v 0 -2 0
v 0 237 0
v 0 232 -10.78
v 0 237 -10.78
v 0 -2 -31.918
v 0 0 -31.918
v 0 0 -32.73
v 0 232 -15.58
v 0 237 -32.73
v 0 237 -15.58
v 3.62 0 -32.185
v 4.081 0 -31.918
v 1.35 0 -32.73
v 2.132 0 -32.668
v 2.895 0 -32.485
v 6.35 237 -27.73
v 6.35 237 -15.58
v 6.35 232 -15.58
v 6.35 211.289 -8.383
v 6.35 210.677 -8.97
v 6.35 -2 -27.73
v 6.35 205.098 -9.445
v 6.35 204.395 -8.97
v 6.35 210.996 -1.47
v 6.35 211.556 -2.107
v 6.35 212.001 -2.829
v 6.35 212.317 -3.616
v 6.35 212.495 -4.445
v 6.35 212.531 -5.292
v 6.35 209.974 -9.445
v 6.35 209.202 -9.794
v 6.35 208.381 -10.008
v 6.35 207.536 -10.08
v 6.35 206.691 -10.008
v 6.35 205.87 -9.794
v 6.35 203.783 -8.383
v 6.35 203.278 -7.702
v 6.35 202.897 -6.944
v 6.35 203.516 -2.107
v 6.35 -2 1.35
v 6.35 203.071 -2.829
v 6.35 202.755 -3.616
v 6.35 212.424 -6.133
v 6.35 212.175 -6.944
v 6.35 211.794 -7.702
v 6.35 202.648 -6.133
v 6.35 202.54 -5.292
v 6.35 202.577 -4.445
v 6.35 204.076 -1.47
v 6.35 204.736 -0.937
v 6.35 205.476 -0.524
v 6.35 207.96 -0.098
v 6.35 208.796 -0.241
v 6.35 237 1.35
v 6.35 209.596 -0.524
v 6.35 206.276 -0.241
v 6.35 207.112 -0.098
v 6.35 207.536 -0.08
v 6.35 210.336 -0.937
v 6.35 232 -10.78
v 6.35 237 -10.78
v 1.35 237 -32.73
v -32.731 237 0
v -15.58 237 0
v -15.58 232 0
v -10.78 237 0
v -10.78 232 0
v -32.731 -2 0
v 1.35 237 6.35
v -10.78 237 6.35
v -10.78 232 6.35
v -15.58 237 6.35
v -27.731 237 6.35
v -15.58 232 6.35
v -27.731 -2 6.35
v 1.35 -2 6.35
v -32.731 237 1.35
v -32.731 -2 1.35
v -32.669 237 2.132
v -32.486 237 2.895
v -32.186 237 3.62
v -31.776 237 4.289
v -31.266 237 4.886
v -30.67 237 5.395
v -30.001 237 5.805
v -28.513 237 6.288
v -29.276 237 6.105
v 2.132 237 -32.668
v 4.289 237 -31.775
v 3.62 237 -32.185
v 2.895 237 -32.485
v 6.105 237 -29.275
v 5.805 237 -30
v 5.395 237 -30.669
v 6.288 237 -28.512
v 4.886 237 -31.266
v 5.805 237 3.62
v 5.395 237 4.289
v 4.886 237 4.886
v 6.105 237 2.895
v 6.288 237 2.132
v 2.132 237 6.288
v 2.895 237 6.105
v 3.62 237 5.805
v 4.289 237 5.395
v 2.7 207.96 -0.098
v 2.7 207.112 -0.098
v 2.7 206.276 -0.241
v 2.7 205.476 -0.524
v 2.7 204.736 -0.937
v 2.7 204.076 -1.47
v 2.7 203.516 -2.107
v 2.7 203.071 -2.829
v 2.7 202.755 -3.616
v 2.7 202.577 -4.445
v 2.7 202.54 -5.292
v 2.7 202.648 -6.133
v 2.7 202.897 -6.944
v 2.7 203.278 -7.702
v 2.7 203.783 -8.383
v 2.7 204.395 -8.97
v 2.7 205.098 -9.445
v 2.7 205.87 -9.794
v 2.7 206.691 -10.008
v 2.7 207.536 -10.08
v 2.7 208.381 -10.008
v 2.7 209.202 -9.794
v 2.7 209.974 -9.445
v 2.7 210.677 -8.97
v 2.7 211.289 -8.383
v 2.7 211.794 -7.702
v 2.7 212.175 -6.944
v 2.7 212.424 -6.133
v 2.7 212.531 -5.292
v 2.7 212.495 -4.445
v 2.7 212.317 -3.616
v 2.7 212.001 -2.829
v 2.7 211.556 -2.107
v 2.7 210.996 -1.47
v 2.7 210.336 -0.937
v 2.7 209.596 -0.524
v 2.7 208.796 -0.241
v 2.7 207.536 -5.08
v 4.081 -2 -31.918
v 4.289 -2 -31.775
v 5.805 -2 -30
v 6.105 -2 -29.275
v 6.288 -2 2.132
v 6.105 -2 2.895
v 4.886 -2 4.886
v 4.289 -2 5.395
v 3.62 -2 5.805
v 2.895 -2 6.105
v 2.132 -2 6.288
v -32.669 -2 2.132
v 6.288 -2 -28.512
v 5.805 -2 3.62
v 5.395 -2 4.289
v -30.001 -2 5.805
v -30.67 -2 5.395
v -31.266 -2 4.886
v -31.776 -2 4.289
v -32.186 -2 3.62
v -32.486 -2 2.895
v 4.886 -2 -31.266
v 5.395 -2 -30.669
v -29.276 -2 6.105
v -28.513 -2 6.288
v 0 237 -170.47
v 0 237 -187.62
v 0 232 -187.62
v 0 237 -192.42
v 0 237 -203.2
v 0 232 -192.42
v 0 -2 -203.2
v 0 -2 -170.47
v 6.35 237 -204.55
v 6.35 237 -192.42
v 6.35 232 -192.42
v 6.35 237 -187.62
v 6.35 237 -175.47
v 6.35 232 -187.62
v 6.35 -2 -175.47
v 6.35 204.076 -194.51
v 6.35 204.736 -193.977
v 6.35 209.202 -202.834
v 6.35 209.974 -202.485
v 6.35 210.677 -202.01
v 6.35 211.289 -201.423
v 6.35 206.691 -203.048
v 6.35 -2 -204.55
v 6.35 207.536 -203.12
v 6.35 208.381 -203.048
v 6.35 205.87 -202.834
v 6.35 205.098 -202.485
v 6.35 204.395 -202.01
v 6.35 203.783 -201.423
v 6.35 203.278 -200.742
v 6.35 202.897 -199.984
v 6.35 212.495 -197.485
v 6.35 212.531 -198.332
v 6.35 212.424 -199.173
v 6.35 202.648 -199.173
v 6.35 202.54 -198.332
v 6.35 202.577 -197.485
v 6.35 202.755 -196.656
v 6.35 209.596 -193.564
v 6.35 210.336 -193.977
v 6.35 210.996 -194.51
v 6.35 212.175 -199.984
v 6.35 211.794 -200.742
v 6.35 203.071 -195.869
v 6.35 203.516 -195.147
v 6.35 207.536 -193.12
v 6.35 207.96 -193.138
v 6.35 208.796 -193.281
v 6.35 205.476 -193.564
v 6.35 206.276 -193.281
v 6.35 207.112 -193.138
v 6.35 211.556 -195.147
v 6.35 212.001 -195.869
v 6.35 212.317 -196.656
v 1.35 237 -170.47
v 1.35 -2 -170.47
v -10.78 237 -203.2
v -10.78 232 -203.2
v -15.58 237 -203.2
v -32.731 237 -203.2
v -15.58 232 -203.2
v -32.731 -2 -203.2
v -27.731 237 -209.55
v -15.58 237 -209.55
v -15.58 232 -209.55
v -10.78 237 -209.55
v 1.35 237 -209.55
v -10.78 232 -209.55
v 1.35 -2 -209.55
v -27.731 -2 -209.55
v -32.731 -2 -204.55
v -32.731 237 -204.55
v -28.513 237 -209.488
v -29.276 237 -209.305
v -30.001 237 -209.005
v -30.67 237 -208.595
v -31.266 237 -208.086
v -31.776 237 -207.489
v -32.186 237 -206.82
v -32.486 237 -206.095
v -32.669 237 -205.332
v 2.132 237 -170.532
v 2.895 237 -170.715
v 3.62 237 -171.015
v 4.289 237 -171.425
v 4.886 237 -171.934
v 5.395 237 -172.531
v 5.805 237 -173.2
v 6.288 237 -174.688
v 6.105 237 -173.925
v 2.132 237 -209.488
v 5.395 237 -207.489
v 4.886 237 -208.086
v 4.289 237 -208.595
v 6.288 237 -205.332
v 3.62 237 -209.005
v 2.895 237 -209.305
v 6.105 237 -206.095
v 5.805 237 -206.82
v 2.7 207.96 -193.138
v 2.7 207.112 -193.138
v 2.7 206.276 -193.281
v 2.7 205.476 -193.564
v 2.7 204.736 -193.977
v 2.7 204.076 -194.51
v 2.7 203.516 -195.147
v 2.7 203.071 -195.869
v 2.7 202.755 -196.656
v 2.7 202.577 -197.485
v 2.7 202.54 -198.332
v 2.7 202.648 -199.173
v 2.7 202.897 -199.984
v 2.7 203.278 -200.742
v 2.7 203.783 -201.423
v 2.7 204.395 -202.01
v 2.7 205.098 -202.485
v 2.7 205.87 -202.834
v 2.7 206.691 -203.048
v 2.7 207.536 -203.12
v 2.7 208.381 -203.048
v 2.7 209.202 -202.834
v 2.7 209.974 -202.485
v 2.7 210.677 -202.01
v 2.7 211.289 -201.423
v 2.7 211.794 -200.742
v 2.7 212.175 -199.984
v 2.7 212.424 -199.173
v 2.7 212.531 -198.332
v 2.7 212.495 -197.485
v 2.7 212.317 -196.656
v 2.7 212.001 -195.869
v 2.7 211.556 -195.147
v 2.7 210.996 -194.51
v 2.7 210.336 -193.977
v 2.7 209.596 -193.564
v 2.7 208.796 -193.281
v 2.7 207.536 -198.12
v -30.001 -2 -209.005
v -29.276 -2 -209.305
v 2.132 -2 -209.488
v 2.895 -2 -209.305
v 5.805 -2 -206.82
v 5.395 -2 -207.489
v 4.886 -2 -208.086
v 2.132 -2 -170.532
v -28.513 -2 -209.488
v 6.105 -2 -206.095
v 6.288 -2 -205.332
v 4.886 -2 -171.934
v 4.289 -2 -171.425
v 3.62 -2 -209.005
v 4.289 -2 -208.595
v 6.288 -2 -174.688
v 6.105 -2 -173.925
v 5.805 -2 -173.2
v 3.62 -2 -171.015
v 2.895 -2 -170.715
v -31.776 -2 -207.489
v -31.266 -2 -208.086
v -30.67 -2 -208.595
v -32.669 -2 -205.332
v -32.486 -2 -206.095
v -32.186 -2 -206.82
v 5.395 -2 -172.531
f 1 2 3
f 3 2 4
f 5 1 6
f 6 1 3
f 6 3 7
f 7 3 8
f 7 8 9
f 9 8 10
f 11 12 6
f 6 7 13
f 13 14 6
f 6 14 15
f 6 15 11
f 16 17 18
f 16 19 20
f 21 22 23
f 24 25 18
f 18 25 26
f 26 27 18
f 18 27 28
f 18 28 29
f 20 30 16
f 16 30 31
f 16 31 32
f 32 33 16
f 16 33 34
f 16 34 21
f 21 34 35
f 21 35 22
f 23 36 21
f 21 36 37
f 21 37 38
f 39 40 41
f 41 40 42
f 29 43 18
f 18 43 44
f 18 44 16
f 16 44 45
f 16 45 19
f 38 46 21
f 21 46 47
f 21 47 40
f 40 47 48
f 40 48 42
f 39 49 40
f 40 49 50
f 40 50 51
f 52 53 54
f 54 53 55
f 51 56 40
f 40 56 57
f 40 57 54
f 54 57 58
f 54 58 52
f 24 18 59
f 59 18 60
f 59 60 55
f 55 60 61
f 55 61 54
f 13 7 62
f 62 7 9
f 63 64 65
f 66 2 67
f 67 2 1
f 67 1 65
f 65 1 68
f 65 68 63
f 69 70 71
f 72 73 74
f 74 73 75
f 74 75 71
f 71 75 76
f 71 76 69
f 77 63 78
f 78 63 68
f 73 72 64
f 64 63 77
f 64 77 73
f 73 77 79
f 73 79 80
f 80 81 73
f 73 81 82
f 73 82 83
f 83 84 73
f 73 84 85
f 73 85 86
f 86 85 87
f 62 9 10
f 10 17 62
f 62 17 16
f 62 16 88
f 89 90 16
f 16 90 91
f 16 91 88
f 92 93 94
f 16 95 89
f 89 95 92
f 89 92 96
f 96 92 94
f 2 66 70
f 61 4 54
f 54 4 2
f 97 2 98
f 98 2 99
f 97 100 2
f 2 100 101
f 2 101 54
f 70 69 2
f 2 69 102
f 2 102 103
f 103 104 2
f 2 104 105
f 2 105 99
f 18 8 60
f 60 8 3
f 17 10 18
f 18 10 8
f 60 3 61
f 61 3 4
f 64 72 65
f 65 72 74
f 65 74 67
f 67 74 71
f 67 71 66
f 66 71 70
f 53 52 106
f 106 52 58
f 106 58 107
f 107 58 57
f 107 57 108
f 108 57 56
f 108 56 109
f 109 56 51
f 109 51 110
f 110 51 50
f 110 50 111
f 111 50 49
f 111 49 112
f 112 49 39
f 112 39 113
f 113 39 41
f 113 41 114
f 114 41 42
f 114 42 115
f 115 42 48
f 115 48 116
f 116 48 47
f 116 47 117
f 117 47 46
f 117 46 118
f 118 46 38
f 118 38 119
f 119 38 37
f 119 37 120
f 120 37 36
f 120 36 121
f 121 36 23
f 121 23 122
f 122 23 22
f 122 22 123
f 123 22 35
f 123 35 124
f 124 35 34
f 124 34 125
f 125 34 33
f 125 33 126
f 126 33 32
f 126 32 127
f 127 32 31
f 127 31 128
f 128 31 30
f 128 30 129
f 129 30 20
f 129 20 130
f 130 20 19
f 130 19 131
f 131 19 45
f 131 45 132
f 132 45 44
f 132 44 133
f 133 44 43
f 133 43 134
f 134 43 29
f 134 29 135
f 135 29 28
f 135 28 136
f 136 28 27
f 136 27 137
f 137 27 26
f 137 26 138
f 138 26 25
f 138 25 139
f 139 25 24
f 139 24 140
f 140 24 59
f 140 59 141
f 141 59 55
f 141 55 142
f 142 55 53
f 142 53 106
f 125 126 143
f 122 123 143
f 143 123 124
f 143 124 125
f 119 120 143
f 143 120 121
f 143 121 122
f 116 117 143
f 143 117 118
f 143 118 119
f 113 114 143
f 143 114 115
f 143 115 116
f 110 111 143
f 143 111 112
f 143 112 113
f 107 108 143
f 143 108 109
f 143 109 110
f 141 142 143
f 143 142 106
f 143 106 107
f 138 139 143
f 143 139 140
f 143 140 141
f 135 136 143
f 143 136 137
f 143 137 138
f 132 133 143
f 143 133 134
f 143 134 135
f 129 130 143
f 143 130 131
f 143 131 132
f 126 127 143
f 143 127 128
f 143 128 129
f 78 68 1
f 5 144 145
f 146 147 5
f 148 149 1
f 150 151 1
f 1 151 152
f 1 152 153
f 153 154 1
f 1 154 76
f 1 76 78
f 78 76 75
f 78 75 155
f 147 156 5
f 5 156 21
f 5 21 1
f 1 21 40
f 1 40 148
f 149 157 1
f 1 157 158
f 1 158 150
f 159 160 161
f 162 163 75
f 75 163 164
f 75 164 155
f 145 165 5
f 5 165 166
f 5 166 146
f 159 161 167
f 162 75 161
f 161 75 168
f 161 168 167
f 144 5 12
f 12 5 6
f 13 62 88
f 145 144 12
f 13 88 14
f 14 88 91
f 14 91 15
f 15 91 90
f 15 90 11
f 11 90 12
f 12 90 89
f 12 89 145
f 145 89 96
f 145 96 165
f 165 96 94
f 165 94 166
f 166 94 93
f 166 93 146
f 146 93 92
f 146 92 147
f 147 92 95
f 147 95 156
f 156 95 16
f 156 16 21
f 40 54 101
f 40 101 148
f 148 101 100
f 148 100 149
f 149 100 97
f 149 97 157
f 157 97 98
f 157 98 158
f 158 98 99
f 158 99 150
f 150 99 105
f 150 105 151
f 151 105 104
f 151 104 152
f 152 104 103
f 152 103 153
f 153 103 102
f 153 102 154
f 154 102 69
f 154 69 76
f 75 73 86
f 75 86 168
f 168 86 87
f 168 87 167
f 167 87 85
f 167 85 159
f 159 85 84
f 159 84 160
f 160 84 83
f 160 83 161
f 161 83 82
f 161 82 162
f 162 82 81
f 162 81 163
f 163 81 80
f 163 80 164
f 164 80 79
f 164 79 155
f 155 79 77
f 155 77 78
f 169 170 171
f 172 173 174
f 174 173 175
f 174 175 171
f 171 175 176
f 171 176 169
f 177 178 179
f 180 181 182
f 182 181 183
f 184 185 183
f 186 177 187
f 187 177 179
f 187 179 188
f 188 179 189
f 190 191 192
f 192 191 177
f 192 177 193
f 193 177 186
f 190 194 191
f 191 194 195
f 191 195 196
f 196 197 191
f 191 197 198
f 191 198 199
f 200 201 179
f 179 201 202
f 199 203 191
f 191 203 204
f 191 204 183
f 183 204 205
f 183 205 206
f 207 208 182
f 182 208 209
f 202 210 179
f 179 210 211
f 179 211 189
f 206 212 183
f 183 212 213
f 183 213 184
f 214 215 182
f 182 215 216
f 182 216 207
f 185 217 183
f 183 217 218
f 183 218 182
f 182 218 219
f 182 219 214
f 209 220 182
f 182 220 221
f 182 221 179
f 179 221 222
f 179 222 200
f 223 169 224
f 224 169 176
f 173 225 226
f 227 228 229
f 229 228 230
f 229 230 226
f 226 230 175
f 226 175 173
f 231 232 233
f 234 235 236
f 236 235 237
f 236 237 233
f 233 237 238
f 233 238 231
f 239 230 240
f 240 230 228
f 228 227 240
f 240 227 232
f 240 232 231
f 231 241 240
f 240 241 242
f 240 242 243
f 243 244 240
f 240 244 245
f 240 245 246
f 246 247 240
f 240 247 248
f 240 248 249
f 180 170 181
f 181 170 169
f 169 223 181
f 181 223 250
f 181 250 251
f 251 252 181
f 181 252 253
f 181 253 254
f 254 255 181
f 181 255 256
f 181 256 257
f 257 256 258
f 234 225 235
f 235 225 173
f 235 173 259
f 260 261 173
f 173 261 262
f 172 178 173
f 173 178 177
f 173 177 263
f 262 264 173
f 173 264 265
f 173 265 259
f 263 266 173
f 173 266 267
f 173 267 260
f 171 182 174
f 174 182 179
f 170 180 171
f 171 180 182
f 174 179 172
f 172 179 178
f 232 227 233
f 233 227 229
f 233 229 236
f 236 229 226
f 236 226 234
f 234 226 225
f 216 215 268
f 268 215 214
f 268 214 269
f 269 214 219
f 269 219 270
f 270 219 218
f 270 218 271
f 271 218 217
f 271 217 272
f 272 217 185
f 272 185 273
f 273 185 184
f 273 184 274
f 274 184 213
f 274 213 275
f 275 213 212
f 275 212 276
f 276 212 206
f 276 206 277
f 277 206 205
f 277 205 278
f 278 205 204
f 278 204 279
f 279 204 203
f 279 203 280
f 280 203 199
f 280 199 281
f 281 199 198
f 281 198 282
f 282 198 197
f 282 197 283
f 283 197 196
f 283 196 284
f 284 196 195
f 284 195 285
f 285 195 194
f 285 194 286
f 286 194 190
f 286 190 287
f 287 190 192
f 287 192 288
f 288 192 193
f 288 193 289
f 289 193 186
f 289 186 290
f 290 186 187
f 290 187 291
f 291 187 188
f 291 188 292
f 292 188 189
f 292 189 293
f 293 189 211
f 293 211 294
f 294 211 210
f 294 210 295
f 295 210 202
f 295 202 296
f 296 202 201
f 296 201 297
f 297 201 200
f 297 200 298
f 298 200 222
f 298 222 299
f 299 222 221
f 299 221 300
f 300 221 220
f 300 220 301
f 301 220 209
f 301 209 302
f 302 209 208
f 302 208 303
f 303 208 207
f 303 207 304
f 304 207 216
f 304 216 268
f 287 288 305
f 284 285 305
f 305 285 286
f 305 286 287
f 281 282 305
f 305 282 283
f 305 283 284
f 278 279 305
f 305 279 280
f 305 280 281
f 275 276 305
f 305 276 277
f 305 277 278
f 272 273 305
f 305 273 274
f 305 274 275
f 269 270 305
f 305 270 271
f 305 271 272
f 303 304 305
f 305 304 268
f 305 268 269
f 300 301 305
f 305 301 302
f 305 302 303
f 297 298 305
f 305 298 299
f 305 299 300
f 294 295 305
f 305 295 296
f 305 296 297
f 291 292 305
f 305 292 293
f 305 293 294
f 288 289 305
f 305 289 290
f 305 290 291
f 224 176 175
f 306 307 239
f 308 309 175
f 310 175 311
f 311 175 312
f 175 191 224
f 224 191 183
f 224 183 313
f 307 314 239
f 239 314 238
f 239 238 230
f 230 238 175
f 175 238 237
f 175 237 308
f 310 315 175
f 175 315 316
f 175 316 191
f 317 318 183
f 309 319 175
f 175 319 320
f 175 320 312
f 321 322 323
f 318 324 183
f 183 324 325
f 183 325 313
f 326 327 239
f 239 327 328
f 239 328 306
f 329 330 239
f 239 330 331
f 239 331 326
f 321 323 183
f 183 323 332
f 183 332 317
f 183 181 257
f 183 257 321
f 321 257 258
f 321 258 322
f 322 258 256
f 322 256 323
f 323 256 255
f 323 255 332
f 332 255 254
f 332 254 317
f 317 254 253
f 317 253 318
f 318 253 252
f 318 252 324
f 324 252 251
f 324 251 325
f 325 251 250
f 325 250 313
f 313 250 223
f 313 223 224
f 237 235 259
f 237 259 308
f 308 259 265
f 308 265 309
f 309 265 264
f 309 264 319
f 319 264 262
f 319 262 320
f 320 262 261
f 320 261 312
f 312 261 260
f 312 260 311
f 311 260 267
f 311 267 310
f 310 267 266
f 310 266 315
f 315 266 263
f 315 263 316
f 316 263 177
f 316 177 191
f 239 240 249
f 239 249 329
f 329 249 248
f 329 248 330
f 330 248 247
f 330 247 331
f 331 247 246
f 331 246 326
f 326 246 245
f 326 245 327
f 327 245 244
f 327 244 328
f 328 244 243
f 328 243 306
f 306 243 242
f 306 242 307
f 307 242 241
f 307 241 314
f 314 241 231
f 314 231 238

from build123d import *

# Parameters (mm, degrees)
SKETCH1_W                   = 32.730904613
SKETCH1_H                   = 237
BOSS_EXTRUDE1_DEPTH         = 6.35
SKETCH2_W                   = 39.08
SKETCH2_H                   = 237
BOSS_EXTRUDE3_DEPTH         = 6.35
SKETCH27_W                  = 4.8
SKETCH27_H                  = 5
LOCKING_MECHANISM_CUT_DEPTH = 6.35
SKETCH29_W                  = 39.08
SKETCH29_H                  = 1
F_1_MM_SPLIT_DEPTH          = 39.080905
SKETCH32_R                  = 5
LOCKING_MOUNT_DEPTH         = 6.35
SKETCH33_R                  = 1.9
M4_SCREW_HOLE_DEPTH         = 6.35
SKETCH34_R                  = 5
CUT_EXTRUDE1_DEPTH          = 10
SKETCH36_R                  = 5
CUT_EXTRUDE2_DEPTH          = 10
SKETCH40_W                  = 39.080904613
SKETCH40_H                  = 1
BOSS_EXTRUDE4_DEPTH         = 6.35
SKETCH41_W                  = 32.73
SKETCH41_H                  = 1
BOSS_EXTRUDE5_DEPTH         = 6.35
SKETCH42_W                  = 39.08
SKETCH42_H                  = 1
BOSS_EXTRUDE6_DEPTH         = 6.35
SKETCH43_W                  = 32.730904613
SKETCH43_H                  = 1
BOSS_EXTRUDE7_DEPTH         = 6.35
SKETCH44_W                  = 38.268421488
SKETCH44_H                  = 2
BOSS_EXTRUDE8_DEPTH         = 6.35
SKETCH45_W                  = 32.730904613
SKETCH45_H                  = 2
BOSS_EXTRUDE9_DEPTH         = 6.35
FILLET4_R                   = 5
SKETCH46_W                  = 39.08
SKETCH46_H                  = 2
BOSS_EXTRUDE10_DEPTH        = 6.35
SKETCH47_W                  = 32.730904613
SKETCH47_H                  = 2
BOSS_EXTRUDE11_DEPTH        = 6.35
FILLET5_R                   = 5


with BuildPart() as part:
    # Sketch1 → Boss-Extrude1 (new body)
    with BuildSketch(Plane.XY):
        with Locations((-16.365452306, 118.5)):
            Rectangle(SKETCH1_W, SKETCH1_H)
    extrude(amount=BOSS_EXTRUDE1_DEPTH)

    # Sketch2 → Boss-Extrude3 (add)
    with BuildSketch(Plane(origin=(0, 0, 0), x_dir=(0, 0, -1), z_dir=(1, 0, 0))):
        with Locations((13.19, 118.5)):
            Rectangle(SKETCH2_W, SKETCH2_H)
    extrude(amount=BOSS_EXTRUDE3_DEPTH)

    # Sketch27 → Locking_Mechanism_Cut (cut)
    with BuildSketch(Plane(origin=(6.35, 0, 0), x_dir=(0, 0, -1), z_dir=(1, 0, 0))):
        with Locations((13.180415796, 234.5)):
            Rectangle(SKETCH27_W, SKETCH27_H)
    locking_mechanism_cut = extrude(amount=-LOCKING_MECHANISM_CUT_DEPTH, mode=Mode.SUBTRACT)

    # Sketch29 → 1 mm split (cut)
    with BuildSketch(Plane(origin=(6.35, 0, 0), x_dir=(0, 0, -1), z_dir=(1, 0, 0))):
        with Locations((13.19, 109.586886099)):
            Rectangle(SKETCH29_W, SKETCH29_H)
    extrude(amount=-F_1_MM_SPLIT_DEPTH, mode=Mode.SUBTRACT)

    # LockingMechanismMirror: Locking_Mechanism_Cut across plane
    add(locking_mechanism_cut.mirror(Plane(origin=(0, 0, 0), x_dir=(0.707106781, 0, 0.707106781), z_dir=(0.707106781, 0, -0.707106781))), mode=Mode.SUBTRACT)


with BuildPart() as body_2:
    # Sketch32 → Locking Mount (new body)
    with BuildSketch(Plane(origin=(6.35, 0, 0), x_dir=(0, 0, -1), z_dir=(1, 0, 0))):
        with Locations((5.08, 207.536)):
            Circle(SKETCH32_R)
    extrude(amount=LOCKING_MOUNT_DEPTH)

    # Sketch33 → M4 Screw Hole (cut)
    with BuildSketch(Plane(origin=(12.7, 0, 0), x_dir=(0, 0, -1), z_dir=(1, 0, 0))):
        with Locations((5.08, 207.536)):
            Circle(SKETCH33_R)
    extrude(amount=-M4_SCREW_HOLE_DEPTH, mode=Mode.SUBTRACT)


with BuildPart() as body_3:
    # Mirror2: mirrored copy
    add(part.part.mirror(Plane(origin=(0, 0, -101.6), x_dir=(1, 0, 0), z_dir=(0, 0, -1))))


with BuildPart() as body_4:
    # Mirror2 2: mirrored copy
    add(body_2.part.mirror(Plane(origin=(0, 0, -101.6), x_dir=(1, 0, 0), z_dir=(0, 0, -1))))


with BuildPart() as cut_extrude1_tool:
    # Sketch34 → Cut-Extrude1 (new body)
    with BuildSketch(Plane(origin=(12.7, 0, 0), x_dir=(0, 0, -1), z_dir=(1, 0, 0))):
        with Locations((5.08, 207.536)):
            Circle(SKETCH34_R)
    extrude(amount=-CUT_EXTRUDE1_DEPTH)


with BuildPart() as part_1:
    add(part.part)

    # Cut-Extrude1: cut by cut_extrude1_tool
    add(cut_extrude1_tool.part, mode=Mode.SUBTRACT)

    # Sketch42 → Boss-Extrude6 (add)
    with BuildSketch(Plane(origin=(6.35, 0, 0), x_dir=(0, 0, -1), z_dir=(1, 0, 0))):
        with Locations((13.19, 109.586886099)):
            Rectangle(SKETCH42_W, SKETCH42_H)
    extrude(amount=-BOSS_EXTRUDE6_DEPTH)

    # Sketch43 → Boss-Extrude7 (add)
    with BuildSketch(Plane.XY.offset(6.35)):
        with Locations((-16.365452306, 109.586886099)):
            Rectangle(SKETCH43_W, SKETCH43_H)
    extrude(amount=-BOSS_EXTRUDE7_DEPTH)

    # Sketch44 → Boss-Extrude8 (add)
    with BuildSketch(Plane(origin=(6.35, 0, 0), x_dir=(0, 0, -1), z_dir=(1, 0, 0))):
        with Locations((12.784210744, -1)):
            Rectangle(SKETCH44_W, SKETCH44_H)
    extrude(amount=-BOSS_EXTRUDE8_DEPTH)

    # Sketch45 → Boss-Extrude9 (add)
    with BuildSketch(Plane.XY.offset(6.35)):
        with Locations((-16.365452306, -1)):
            Rectangle(SKETCH45_W, SKETCH45_H)
    extrude(amount=-BOSS_EXTRUDE9_DEPTH)

    # Fillet4
    fillet4_edges = [part_1.edges().sort_by_distance(p)[0] for p in [
        (6.35, 118.5, -32.73),
        (-32.730904613, 117.5, 6.35),
        (6.35, 117.5, 6.35),
    ]]
    fillet(fillet4_edges, radius=FILLET4_R)


with BuildPart() as body_2_1:
    add(body_2.part)

    # Cut-Extrude1: cut by cut_extrude1_tool
    add(cut_extrude1_tool.part, mode=Mode.SUBTRACT)


with BuildPart() as cut_extrude2_tool:
    # Sketch36 → Cut-Extrude2 (new body)
    with BuildSketch(Plane(origin=(12.7, 0, 0), x_dir=(0, 0, -1), z_dir=(1, 0, 0))):
        with Locations((198.12, 207.536)):
            Circle(SKETCH36_R)
    extrude(amount=-CUT_EXTRUDE2_DEPTH)


with BuildPart() as body_3_1:
    add(body_3.part)

    # Cut-Extrude2: cut by cut_extrude2_tool
    add(cut_extrude2_tool.part, mode=Mode.SUBTRACT)

    # Sketch40 → Boss-Extrude4 (add)
    with BuildSketch(Plane(origin=(0, 0, -209.55), x_dir=(-1, 0, 0), z_dir=(0, 0, -1))):
        with Locations((13.190452306, 109.586886099)):
            Rectangle(SKETCH40_W, SKETCH40_H)
    extrude(amount=-BOSS_EXTRUDE4_DEPTH)

    # Sketch41 → Boss-Extrude5 (add)
    with BuildSketch(Plane(origin=(6.35, 0, 0), x_dir=(0, 0, -1), z_dir=(1, 0, 0))):
        with Locations((186.835, 109.586886099)):
            Rectangle(SKETCH41_W, SKETCH41_H)
    extrude(amount=-BOSS_EXTRUDE5_DEPTH)

    # Sketch46 → Boss-Extrude10 (add)
    with BuildSketch(Plane(origin=(6.35, 0, 0), x_dir=(0, 0, -1), z_dir=(1, 0, 0))):
        with Locations((190.01, -1)):
            Rectangle(SKETCH46_W, SKETCH46_H)
    extrude(amount=-BOSS_EXTRUDE10_DEPTH)

    # Sketch47 → Boss-Extrude11 (add)
    with BuildSketch(Plane(origin=(0, 0, -209.55), x_dir=(-1, 0, 0), z_dir=(0, 0, -1))):
        with Locations((16.365452306, -1)):
            Rectangle(SKETCH47_W, SKETCH47_H)
    extrude(amount=-BOSS_EXTRUDE11_DEPTH)

    # Fillet5
    fillet5_edges = [body_3_1.edges().sort_by_distance(p)[0] for p in [
        (6.35, 117.5, -170.47),
        (6.35, 117.5, -209.55),
        (-32.730904613, 117.5, -209.55),
    ]]
    fillet(fillet5_edges, radius=FILLET5_R)


with BuildPart() as body_4_1:
    add(body_4.part)

    # Cut-Extrude2: cut by cut_extrude2_tool
    add(cut_extrude2_tool.part, mode=Mode.SUBTRACT)


solid = Compound([part_1.part, body_3_1.part])
